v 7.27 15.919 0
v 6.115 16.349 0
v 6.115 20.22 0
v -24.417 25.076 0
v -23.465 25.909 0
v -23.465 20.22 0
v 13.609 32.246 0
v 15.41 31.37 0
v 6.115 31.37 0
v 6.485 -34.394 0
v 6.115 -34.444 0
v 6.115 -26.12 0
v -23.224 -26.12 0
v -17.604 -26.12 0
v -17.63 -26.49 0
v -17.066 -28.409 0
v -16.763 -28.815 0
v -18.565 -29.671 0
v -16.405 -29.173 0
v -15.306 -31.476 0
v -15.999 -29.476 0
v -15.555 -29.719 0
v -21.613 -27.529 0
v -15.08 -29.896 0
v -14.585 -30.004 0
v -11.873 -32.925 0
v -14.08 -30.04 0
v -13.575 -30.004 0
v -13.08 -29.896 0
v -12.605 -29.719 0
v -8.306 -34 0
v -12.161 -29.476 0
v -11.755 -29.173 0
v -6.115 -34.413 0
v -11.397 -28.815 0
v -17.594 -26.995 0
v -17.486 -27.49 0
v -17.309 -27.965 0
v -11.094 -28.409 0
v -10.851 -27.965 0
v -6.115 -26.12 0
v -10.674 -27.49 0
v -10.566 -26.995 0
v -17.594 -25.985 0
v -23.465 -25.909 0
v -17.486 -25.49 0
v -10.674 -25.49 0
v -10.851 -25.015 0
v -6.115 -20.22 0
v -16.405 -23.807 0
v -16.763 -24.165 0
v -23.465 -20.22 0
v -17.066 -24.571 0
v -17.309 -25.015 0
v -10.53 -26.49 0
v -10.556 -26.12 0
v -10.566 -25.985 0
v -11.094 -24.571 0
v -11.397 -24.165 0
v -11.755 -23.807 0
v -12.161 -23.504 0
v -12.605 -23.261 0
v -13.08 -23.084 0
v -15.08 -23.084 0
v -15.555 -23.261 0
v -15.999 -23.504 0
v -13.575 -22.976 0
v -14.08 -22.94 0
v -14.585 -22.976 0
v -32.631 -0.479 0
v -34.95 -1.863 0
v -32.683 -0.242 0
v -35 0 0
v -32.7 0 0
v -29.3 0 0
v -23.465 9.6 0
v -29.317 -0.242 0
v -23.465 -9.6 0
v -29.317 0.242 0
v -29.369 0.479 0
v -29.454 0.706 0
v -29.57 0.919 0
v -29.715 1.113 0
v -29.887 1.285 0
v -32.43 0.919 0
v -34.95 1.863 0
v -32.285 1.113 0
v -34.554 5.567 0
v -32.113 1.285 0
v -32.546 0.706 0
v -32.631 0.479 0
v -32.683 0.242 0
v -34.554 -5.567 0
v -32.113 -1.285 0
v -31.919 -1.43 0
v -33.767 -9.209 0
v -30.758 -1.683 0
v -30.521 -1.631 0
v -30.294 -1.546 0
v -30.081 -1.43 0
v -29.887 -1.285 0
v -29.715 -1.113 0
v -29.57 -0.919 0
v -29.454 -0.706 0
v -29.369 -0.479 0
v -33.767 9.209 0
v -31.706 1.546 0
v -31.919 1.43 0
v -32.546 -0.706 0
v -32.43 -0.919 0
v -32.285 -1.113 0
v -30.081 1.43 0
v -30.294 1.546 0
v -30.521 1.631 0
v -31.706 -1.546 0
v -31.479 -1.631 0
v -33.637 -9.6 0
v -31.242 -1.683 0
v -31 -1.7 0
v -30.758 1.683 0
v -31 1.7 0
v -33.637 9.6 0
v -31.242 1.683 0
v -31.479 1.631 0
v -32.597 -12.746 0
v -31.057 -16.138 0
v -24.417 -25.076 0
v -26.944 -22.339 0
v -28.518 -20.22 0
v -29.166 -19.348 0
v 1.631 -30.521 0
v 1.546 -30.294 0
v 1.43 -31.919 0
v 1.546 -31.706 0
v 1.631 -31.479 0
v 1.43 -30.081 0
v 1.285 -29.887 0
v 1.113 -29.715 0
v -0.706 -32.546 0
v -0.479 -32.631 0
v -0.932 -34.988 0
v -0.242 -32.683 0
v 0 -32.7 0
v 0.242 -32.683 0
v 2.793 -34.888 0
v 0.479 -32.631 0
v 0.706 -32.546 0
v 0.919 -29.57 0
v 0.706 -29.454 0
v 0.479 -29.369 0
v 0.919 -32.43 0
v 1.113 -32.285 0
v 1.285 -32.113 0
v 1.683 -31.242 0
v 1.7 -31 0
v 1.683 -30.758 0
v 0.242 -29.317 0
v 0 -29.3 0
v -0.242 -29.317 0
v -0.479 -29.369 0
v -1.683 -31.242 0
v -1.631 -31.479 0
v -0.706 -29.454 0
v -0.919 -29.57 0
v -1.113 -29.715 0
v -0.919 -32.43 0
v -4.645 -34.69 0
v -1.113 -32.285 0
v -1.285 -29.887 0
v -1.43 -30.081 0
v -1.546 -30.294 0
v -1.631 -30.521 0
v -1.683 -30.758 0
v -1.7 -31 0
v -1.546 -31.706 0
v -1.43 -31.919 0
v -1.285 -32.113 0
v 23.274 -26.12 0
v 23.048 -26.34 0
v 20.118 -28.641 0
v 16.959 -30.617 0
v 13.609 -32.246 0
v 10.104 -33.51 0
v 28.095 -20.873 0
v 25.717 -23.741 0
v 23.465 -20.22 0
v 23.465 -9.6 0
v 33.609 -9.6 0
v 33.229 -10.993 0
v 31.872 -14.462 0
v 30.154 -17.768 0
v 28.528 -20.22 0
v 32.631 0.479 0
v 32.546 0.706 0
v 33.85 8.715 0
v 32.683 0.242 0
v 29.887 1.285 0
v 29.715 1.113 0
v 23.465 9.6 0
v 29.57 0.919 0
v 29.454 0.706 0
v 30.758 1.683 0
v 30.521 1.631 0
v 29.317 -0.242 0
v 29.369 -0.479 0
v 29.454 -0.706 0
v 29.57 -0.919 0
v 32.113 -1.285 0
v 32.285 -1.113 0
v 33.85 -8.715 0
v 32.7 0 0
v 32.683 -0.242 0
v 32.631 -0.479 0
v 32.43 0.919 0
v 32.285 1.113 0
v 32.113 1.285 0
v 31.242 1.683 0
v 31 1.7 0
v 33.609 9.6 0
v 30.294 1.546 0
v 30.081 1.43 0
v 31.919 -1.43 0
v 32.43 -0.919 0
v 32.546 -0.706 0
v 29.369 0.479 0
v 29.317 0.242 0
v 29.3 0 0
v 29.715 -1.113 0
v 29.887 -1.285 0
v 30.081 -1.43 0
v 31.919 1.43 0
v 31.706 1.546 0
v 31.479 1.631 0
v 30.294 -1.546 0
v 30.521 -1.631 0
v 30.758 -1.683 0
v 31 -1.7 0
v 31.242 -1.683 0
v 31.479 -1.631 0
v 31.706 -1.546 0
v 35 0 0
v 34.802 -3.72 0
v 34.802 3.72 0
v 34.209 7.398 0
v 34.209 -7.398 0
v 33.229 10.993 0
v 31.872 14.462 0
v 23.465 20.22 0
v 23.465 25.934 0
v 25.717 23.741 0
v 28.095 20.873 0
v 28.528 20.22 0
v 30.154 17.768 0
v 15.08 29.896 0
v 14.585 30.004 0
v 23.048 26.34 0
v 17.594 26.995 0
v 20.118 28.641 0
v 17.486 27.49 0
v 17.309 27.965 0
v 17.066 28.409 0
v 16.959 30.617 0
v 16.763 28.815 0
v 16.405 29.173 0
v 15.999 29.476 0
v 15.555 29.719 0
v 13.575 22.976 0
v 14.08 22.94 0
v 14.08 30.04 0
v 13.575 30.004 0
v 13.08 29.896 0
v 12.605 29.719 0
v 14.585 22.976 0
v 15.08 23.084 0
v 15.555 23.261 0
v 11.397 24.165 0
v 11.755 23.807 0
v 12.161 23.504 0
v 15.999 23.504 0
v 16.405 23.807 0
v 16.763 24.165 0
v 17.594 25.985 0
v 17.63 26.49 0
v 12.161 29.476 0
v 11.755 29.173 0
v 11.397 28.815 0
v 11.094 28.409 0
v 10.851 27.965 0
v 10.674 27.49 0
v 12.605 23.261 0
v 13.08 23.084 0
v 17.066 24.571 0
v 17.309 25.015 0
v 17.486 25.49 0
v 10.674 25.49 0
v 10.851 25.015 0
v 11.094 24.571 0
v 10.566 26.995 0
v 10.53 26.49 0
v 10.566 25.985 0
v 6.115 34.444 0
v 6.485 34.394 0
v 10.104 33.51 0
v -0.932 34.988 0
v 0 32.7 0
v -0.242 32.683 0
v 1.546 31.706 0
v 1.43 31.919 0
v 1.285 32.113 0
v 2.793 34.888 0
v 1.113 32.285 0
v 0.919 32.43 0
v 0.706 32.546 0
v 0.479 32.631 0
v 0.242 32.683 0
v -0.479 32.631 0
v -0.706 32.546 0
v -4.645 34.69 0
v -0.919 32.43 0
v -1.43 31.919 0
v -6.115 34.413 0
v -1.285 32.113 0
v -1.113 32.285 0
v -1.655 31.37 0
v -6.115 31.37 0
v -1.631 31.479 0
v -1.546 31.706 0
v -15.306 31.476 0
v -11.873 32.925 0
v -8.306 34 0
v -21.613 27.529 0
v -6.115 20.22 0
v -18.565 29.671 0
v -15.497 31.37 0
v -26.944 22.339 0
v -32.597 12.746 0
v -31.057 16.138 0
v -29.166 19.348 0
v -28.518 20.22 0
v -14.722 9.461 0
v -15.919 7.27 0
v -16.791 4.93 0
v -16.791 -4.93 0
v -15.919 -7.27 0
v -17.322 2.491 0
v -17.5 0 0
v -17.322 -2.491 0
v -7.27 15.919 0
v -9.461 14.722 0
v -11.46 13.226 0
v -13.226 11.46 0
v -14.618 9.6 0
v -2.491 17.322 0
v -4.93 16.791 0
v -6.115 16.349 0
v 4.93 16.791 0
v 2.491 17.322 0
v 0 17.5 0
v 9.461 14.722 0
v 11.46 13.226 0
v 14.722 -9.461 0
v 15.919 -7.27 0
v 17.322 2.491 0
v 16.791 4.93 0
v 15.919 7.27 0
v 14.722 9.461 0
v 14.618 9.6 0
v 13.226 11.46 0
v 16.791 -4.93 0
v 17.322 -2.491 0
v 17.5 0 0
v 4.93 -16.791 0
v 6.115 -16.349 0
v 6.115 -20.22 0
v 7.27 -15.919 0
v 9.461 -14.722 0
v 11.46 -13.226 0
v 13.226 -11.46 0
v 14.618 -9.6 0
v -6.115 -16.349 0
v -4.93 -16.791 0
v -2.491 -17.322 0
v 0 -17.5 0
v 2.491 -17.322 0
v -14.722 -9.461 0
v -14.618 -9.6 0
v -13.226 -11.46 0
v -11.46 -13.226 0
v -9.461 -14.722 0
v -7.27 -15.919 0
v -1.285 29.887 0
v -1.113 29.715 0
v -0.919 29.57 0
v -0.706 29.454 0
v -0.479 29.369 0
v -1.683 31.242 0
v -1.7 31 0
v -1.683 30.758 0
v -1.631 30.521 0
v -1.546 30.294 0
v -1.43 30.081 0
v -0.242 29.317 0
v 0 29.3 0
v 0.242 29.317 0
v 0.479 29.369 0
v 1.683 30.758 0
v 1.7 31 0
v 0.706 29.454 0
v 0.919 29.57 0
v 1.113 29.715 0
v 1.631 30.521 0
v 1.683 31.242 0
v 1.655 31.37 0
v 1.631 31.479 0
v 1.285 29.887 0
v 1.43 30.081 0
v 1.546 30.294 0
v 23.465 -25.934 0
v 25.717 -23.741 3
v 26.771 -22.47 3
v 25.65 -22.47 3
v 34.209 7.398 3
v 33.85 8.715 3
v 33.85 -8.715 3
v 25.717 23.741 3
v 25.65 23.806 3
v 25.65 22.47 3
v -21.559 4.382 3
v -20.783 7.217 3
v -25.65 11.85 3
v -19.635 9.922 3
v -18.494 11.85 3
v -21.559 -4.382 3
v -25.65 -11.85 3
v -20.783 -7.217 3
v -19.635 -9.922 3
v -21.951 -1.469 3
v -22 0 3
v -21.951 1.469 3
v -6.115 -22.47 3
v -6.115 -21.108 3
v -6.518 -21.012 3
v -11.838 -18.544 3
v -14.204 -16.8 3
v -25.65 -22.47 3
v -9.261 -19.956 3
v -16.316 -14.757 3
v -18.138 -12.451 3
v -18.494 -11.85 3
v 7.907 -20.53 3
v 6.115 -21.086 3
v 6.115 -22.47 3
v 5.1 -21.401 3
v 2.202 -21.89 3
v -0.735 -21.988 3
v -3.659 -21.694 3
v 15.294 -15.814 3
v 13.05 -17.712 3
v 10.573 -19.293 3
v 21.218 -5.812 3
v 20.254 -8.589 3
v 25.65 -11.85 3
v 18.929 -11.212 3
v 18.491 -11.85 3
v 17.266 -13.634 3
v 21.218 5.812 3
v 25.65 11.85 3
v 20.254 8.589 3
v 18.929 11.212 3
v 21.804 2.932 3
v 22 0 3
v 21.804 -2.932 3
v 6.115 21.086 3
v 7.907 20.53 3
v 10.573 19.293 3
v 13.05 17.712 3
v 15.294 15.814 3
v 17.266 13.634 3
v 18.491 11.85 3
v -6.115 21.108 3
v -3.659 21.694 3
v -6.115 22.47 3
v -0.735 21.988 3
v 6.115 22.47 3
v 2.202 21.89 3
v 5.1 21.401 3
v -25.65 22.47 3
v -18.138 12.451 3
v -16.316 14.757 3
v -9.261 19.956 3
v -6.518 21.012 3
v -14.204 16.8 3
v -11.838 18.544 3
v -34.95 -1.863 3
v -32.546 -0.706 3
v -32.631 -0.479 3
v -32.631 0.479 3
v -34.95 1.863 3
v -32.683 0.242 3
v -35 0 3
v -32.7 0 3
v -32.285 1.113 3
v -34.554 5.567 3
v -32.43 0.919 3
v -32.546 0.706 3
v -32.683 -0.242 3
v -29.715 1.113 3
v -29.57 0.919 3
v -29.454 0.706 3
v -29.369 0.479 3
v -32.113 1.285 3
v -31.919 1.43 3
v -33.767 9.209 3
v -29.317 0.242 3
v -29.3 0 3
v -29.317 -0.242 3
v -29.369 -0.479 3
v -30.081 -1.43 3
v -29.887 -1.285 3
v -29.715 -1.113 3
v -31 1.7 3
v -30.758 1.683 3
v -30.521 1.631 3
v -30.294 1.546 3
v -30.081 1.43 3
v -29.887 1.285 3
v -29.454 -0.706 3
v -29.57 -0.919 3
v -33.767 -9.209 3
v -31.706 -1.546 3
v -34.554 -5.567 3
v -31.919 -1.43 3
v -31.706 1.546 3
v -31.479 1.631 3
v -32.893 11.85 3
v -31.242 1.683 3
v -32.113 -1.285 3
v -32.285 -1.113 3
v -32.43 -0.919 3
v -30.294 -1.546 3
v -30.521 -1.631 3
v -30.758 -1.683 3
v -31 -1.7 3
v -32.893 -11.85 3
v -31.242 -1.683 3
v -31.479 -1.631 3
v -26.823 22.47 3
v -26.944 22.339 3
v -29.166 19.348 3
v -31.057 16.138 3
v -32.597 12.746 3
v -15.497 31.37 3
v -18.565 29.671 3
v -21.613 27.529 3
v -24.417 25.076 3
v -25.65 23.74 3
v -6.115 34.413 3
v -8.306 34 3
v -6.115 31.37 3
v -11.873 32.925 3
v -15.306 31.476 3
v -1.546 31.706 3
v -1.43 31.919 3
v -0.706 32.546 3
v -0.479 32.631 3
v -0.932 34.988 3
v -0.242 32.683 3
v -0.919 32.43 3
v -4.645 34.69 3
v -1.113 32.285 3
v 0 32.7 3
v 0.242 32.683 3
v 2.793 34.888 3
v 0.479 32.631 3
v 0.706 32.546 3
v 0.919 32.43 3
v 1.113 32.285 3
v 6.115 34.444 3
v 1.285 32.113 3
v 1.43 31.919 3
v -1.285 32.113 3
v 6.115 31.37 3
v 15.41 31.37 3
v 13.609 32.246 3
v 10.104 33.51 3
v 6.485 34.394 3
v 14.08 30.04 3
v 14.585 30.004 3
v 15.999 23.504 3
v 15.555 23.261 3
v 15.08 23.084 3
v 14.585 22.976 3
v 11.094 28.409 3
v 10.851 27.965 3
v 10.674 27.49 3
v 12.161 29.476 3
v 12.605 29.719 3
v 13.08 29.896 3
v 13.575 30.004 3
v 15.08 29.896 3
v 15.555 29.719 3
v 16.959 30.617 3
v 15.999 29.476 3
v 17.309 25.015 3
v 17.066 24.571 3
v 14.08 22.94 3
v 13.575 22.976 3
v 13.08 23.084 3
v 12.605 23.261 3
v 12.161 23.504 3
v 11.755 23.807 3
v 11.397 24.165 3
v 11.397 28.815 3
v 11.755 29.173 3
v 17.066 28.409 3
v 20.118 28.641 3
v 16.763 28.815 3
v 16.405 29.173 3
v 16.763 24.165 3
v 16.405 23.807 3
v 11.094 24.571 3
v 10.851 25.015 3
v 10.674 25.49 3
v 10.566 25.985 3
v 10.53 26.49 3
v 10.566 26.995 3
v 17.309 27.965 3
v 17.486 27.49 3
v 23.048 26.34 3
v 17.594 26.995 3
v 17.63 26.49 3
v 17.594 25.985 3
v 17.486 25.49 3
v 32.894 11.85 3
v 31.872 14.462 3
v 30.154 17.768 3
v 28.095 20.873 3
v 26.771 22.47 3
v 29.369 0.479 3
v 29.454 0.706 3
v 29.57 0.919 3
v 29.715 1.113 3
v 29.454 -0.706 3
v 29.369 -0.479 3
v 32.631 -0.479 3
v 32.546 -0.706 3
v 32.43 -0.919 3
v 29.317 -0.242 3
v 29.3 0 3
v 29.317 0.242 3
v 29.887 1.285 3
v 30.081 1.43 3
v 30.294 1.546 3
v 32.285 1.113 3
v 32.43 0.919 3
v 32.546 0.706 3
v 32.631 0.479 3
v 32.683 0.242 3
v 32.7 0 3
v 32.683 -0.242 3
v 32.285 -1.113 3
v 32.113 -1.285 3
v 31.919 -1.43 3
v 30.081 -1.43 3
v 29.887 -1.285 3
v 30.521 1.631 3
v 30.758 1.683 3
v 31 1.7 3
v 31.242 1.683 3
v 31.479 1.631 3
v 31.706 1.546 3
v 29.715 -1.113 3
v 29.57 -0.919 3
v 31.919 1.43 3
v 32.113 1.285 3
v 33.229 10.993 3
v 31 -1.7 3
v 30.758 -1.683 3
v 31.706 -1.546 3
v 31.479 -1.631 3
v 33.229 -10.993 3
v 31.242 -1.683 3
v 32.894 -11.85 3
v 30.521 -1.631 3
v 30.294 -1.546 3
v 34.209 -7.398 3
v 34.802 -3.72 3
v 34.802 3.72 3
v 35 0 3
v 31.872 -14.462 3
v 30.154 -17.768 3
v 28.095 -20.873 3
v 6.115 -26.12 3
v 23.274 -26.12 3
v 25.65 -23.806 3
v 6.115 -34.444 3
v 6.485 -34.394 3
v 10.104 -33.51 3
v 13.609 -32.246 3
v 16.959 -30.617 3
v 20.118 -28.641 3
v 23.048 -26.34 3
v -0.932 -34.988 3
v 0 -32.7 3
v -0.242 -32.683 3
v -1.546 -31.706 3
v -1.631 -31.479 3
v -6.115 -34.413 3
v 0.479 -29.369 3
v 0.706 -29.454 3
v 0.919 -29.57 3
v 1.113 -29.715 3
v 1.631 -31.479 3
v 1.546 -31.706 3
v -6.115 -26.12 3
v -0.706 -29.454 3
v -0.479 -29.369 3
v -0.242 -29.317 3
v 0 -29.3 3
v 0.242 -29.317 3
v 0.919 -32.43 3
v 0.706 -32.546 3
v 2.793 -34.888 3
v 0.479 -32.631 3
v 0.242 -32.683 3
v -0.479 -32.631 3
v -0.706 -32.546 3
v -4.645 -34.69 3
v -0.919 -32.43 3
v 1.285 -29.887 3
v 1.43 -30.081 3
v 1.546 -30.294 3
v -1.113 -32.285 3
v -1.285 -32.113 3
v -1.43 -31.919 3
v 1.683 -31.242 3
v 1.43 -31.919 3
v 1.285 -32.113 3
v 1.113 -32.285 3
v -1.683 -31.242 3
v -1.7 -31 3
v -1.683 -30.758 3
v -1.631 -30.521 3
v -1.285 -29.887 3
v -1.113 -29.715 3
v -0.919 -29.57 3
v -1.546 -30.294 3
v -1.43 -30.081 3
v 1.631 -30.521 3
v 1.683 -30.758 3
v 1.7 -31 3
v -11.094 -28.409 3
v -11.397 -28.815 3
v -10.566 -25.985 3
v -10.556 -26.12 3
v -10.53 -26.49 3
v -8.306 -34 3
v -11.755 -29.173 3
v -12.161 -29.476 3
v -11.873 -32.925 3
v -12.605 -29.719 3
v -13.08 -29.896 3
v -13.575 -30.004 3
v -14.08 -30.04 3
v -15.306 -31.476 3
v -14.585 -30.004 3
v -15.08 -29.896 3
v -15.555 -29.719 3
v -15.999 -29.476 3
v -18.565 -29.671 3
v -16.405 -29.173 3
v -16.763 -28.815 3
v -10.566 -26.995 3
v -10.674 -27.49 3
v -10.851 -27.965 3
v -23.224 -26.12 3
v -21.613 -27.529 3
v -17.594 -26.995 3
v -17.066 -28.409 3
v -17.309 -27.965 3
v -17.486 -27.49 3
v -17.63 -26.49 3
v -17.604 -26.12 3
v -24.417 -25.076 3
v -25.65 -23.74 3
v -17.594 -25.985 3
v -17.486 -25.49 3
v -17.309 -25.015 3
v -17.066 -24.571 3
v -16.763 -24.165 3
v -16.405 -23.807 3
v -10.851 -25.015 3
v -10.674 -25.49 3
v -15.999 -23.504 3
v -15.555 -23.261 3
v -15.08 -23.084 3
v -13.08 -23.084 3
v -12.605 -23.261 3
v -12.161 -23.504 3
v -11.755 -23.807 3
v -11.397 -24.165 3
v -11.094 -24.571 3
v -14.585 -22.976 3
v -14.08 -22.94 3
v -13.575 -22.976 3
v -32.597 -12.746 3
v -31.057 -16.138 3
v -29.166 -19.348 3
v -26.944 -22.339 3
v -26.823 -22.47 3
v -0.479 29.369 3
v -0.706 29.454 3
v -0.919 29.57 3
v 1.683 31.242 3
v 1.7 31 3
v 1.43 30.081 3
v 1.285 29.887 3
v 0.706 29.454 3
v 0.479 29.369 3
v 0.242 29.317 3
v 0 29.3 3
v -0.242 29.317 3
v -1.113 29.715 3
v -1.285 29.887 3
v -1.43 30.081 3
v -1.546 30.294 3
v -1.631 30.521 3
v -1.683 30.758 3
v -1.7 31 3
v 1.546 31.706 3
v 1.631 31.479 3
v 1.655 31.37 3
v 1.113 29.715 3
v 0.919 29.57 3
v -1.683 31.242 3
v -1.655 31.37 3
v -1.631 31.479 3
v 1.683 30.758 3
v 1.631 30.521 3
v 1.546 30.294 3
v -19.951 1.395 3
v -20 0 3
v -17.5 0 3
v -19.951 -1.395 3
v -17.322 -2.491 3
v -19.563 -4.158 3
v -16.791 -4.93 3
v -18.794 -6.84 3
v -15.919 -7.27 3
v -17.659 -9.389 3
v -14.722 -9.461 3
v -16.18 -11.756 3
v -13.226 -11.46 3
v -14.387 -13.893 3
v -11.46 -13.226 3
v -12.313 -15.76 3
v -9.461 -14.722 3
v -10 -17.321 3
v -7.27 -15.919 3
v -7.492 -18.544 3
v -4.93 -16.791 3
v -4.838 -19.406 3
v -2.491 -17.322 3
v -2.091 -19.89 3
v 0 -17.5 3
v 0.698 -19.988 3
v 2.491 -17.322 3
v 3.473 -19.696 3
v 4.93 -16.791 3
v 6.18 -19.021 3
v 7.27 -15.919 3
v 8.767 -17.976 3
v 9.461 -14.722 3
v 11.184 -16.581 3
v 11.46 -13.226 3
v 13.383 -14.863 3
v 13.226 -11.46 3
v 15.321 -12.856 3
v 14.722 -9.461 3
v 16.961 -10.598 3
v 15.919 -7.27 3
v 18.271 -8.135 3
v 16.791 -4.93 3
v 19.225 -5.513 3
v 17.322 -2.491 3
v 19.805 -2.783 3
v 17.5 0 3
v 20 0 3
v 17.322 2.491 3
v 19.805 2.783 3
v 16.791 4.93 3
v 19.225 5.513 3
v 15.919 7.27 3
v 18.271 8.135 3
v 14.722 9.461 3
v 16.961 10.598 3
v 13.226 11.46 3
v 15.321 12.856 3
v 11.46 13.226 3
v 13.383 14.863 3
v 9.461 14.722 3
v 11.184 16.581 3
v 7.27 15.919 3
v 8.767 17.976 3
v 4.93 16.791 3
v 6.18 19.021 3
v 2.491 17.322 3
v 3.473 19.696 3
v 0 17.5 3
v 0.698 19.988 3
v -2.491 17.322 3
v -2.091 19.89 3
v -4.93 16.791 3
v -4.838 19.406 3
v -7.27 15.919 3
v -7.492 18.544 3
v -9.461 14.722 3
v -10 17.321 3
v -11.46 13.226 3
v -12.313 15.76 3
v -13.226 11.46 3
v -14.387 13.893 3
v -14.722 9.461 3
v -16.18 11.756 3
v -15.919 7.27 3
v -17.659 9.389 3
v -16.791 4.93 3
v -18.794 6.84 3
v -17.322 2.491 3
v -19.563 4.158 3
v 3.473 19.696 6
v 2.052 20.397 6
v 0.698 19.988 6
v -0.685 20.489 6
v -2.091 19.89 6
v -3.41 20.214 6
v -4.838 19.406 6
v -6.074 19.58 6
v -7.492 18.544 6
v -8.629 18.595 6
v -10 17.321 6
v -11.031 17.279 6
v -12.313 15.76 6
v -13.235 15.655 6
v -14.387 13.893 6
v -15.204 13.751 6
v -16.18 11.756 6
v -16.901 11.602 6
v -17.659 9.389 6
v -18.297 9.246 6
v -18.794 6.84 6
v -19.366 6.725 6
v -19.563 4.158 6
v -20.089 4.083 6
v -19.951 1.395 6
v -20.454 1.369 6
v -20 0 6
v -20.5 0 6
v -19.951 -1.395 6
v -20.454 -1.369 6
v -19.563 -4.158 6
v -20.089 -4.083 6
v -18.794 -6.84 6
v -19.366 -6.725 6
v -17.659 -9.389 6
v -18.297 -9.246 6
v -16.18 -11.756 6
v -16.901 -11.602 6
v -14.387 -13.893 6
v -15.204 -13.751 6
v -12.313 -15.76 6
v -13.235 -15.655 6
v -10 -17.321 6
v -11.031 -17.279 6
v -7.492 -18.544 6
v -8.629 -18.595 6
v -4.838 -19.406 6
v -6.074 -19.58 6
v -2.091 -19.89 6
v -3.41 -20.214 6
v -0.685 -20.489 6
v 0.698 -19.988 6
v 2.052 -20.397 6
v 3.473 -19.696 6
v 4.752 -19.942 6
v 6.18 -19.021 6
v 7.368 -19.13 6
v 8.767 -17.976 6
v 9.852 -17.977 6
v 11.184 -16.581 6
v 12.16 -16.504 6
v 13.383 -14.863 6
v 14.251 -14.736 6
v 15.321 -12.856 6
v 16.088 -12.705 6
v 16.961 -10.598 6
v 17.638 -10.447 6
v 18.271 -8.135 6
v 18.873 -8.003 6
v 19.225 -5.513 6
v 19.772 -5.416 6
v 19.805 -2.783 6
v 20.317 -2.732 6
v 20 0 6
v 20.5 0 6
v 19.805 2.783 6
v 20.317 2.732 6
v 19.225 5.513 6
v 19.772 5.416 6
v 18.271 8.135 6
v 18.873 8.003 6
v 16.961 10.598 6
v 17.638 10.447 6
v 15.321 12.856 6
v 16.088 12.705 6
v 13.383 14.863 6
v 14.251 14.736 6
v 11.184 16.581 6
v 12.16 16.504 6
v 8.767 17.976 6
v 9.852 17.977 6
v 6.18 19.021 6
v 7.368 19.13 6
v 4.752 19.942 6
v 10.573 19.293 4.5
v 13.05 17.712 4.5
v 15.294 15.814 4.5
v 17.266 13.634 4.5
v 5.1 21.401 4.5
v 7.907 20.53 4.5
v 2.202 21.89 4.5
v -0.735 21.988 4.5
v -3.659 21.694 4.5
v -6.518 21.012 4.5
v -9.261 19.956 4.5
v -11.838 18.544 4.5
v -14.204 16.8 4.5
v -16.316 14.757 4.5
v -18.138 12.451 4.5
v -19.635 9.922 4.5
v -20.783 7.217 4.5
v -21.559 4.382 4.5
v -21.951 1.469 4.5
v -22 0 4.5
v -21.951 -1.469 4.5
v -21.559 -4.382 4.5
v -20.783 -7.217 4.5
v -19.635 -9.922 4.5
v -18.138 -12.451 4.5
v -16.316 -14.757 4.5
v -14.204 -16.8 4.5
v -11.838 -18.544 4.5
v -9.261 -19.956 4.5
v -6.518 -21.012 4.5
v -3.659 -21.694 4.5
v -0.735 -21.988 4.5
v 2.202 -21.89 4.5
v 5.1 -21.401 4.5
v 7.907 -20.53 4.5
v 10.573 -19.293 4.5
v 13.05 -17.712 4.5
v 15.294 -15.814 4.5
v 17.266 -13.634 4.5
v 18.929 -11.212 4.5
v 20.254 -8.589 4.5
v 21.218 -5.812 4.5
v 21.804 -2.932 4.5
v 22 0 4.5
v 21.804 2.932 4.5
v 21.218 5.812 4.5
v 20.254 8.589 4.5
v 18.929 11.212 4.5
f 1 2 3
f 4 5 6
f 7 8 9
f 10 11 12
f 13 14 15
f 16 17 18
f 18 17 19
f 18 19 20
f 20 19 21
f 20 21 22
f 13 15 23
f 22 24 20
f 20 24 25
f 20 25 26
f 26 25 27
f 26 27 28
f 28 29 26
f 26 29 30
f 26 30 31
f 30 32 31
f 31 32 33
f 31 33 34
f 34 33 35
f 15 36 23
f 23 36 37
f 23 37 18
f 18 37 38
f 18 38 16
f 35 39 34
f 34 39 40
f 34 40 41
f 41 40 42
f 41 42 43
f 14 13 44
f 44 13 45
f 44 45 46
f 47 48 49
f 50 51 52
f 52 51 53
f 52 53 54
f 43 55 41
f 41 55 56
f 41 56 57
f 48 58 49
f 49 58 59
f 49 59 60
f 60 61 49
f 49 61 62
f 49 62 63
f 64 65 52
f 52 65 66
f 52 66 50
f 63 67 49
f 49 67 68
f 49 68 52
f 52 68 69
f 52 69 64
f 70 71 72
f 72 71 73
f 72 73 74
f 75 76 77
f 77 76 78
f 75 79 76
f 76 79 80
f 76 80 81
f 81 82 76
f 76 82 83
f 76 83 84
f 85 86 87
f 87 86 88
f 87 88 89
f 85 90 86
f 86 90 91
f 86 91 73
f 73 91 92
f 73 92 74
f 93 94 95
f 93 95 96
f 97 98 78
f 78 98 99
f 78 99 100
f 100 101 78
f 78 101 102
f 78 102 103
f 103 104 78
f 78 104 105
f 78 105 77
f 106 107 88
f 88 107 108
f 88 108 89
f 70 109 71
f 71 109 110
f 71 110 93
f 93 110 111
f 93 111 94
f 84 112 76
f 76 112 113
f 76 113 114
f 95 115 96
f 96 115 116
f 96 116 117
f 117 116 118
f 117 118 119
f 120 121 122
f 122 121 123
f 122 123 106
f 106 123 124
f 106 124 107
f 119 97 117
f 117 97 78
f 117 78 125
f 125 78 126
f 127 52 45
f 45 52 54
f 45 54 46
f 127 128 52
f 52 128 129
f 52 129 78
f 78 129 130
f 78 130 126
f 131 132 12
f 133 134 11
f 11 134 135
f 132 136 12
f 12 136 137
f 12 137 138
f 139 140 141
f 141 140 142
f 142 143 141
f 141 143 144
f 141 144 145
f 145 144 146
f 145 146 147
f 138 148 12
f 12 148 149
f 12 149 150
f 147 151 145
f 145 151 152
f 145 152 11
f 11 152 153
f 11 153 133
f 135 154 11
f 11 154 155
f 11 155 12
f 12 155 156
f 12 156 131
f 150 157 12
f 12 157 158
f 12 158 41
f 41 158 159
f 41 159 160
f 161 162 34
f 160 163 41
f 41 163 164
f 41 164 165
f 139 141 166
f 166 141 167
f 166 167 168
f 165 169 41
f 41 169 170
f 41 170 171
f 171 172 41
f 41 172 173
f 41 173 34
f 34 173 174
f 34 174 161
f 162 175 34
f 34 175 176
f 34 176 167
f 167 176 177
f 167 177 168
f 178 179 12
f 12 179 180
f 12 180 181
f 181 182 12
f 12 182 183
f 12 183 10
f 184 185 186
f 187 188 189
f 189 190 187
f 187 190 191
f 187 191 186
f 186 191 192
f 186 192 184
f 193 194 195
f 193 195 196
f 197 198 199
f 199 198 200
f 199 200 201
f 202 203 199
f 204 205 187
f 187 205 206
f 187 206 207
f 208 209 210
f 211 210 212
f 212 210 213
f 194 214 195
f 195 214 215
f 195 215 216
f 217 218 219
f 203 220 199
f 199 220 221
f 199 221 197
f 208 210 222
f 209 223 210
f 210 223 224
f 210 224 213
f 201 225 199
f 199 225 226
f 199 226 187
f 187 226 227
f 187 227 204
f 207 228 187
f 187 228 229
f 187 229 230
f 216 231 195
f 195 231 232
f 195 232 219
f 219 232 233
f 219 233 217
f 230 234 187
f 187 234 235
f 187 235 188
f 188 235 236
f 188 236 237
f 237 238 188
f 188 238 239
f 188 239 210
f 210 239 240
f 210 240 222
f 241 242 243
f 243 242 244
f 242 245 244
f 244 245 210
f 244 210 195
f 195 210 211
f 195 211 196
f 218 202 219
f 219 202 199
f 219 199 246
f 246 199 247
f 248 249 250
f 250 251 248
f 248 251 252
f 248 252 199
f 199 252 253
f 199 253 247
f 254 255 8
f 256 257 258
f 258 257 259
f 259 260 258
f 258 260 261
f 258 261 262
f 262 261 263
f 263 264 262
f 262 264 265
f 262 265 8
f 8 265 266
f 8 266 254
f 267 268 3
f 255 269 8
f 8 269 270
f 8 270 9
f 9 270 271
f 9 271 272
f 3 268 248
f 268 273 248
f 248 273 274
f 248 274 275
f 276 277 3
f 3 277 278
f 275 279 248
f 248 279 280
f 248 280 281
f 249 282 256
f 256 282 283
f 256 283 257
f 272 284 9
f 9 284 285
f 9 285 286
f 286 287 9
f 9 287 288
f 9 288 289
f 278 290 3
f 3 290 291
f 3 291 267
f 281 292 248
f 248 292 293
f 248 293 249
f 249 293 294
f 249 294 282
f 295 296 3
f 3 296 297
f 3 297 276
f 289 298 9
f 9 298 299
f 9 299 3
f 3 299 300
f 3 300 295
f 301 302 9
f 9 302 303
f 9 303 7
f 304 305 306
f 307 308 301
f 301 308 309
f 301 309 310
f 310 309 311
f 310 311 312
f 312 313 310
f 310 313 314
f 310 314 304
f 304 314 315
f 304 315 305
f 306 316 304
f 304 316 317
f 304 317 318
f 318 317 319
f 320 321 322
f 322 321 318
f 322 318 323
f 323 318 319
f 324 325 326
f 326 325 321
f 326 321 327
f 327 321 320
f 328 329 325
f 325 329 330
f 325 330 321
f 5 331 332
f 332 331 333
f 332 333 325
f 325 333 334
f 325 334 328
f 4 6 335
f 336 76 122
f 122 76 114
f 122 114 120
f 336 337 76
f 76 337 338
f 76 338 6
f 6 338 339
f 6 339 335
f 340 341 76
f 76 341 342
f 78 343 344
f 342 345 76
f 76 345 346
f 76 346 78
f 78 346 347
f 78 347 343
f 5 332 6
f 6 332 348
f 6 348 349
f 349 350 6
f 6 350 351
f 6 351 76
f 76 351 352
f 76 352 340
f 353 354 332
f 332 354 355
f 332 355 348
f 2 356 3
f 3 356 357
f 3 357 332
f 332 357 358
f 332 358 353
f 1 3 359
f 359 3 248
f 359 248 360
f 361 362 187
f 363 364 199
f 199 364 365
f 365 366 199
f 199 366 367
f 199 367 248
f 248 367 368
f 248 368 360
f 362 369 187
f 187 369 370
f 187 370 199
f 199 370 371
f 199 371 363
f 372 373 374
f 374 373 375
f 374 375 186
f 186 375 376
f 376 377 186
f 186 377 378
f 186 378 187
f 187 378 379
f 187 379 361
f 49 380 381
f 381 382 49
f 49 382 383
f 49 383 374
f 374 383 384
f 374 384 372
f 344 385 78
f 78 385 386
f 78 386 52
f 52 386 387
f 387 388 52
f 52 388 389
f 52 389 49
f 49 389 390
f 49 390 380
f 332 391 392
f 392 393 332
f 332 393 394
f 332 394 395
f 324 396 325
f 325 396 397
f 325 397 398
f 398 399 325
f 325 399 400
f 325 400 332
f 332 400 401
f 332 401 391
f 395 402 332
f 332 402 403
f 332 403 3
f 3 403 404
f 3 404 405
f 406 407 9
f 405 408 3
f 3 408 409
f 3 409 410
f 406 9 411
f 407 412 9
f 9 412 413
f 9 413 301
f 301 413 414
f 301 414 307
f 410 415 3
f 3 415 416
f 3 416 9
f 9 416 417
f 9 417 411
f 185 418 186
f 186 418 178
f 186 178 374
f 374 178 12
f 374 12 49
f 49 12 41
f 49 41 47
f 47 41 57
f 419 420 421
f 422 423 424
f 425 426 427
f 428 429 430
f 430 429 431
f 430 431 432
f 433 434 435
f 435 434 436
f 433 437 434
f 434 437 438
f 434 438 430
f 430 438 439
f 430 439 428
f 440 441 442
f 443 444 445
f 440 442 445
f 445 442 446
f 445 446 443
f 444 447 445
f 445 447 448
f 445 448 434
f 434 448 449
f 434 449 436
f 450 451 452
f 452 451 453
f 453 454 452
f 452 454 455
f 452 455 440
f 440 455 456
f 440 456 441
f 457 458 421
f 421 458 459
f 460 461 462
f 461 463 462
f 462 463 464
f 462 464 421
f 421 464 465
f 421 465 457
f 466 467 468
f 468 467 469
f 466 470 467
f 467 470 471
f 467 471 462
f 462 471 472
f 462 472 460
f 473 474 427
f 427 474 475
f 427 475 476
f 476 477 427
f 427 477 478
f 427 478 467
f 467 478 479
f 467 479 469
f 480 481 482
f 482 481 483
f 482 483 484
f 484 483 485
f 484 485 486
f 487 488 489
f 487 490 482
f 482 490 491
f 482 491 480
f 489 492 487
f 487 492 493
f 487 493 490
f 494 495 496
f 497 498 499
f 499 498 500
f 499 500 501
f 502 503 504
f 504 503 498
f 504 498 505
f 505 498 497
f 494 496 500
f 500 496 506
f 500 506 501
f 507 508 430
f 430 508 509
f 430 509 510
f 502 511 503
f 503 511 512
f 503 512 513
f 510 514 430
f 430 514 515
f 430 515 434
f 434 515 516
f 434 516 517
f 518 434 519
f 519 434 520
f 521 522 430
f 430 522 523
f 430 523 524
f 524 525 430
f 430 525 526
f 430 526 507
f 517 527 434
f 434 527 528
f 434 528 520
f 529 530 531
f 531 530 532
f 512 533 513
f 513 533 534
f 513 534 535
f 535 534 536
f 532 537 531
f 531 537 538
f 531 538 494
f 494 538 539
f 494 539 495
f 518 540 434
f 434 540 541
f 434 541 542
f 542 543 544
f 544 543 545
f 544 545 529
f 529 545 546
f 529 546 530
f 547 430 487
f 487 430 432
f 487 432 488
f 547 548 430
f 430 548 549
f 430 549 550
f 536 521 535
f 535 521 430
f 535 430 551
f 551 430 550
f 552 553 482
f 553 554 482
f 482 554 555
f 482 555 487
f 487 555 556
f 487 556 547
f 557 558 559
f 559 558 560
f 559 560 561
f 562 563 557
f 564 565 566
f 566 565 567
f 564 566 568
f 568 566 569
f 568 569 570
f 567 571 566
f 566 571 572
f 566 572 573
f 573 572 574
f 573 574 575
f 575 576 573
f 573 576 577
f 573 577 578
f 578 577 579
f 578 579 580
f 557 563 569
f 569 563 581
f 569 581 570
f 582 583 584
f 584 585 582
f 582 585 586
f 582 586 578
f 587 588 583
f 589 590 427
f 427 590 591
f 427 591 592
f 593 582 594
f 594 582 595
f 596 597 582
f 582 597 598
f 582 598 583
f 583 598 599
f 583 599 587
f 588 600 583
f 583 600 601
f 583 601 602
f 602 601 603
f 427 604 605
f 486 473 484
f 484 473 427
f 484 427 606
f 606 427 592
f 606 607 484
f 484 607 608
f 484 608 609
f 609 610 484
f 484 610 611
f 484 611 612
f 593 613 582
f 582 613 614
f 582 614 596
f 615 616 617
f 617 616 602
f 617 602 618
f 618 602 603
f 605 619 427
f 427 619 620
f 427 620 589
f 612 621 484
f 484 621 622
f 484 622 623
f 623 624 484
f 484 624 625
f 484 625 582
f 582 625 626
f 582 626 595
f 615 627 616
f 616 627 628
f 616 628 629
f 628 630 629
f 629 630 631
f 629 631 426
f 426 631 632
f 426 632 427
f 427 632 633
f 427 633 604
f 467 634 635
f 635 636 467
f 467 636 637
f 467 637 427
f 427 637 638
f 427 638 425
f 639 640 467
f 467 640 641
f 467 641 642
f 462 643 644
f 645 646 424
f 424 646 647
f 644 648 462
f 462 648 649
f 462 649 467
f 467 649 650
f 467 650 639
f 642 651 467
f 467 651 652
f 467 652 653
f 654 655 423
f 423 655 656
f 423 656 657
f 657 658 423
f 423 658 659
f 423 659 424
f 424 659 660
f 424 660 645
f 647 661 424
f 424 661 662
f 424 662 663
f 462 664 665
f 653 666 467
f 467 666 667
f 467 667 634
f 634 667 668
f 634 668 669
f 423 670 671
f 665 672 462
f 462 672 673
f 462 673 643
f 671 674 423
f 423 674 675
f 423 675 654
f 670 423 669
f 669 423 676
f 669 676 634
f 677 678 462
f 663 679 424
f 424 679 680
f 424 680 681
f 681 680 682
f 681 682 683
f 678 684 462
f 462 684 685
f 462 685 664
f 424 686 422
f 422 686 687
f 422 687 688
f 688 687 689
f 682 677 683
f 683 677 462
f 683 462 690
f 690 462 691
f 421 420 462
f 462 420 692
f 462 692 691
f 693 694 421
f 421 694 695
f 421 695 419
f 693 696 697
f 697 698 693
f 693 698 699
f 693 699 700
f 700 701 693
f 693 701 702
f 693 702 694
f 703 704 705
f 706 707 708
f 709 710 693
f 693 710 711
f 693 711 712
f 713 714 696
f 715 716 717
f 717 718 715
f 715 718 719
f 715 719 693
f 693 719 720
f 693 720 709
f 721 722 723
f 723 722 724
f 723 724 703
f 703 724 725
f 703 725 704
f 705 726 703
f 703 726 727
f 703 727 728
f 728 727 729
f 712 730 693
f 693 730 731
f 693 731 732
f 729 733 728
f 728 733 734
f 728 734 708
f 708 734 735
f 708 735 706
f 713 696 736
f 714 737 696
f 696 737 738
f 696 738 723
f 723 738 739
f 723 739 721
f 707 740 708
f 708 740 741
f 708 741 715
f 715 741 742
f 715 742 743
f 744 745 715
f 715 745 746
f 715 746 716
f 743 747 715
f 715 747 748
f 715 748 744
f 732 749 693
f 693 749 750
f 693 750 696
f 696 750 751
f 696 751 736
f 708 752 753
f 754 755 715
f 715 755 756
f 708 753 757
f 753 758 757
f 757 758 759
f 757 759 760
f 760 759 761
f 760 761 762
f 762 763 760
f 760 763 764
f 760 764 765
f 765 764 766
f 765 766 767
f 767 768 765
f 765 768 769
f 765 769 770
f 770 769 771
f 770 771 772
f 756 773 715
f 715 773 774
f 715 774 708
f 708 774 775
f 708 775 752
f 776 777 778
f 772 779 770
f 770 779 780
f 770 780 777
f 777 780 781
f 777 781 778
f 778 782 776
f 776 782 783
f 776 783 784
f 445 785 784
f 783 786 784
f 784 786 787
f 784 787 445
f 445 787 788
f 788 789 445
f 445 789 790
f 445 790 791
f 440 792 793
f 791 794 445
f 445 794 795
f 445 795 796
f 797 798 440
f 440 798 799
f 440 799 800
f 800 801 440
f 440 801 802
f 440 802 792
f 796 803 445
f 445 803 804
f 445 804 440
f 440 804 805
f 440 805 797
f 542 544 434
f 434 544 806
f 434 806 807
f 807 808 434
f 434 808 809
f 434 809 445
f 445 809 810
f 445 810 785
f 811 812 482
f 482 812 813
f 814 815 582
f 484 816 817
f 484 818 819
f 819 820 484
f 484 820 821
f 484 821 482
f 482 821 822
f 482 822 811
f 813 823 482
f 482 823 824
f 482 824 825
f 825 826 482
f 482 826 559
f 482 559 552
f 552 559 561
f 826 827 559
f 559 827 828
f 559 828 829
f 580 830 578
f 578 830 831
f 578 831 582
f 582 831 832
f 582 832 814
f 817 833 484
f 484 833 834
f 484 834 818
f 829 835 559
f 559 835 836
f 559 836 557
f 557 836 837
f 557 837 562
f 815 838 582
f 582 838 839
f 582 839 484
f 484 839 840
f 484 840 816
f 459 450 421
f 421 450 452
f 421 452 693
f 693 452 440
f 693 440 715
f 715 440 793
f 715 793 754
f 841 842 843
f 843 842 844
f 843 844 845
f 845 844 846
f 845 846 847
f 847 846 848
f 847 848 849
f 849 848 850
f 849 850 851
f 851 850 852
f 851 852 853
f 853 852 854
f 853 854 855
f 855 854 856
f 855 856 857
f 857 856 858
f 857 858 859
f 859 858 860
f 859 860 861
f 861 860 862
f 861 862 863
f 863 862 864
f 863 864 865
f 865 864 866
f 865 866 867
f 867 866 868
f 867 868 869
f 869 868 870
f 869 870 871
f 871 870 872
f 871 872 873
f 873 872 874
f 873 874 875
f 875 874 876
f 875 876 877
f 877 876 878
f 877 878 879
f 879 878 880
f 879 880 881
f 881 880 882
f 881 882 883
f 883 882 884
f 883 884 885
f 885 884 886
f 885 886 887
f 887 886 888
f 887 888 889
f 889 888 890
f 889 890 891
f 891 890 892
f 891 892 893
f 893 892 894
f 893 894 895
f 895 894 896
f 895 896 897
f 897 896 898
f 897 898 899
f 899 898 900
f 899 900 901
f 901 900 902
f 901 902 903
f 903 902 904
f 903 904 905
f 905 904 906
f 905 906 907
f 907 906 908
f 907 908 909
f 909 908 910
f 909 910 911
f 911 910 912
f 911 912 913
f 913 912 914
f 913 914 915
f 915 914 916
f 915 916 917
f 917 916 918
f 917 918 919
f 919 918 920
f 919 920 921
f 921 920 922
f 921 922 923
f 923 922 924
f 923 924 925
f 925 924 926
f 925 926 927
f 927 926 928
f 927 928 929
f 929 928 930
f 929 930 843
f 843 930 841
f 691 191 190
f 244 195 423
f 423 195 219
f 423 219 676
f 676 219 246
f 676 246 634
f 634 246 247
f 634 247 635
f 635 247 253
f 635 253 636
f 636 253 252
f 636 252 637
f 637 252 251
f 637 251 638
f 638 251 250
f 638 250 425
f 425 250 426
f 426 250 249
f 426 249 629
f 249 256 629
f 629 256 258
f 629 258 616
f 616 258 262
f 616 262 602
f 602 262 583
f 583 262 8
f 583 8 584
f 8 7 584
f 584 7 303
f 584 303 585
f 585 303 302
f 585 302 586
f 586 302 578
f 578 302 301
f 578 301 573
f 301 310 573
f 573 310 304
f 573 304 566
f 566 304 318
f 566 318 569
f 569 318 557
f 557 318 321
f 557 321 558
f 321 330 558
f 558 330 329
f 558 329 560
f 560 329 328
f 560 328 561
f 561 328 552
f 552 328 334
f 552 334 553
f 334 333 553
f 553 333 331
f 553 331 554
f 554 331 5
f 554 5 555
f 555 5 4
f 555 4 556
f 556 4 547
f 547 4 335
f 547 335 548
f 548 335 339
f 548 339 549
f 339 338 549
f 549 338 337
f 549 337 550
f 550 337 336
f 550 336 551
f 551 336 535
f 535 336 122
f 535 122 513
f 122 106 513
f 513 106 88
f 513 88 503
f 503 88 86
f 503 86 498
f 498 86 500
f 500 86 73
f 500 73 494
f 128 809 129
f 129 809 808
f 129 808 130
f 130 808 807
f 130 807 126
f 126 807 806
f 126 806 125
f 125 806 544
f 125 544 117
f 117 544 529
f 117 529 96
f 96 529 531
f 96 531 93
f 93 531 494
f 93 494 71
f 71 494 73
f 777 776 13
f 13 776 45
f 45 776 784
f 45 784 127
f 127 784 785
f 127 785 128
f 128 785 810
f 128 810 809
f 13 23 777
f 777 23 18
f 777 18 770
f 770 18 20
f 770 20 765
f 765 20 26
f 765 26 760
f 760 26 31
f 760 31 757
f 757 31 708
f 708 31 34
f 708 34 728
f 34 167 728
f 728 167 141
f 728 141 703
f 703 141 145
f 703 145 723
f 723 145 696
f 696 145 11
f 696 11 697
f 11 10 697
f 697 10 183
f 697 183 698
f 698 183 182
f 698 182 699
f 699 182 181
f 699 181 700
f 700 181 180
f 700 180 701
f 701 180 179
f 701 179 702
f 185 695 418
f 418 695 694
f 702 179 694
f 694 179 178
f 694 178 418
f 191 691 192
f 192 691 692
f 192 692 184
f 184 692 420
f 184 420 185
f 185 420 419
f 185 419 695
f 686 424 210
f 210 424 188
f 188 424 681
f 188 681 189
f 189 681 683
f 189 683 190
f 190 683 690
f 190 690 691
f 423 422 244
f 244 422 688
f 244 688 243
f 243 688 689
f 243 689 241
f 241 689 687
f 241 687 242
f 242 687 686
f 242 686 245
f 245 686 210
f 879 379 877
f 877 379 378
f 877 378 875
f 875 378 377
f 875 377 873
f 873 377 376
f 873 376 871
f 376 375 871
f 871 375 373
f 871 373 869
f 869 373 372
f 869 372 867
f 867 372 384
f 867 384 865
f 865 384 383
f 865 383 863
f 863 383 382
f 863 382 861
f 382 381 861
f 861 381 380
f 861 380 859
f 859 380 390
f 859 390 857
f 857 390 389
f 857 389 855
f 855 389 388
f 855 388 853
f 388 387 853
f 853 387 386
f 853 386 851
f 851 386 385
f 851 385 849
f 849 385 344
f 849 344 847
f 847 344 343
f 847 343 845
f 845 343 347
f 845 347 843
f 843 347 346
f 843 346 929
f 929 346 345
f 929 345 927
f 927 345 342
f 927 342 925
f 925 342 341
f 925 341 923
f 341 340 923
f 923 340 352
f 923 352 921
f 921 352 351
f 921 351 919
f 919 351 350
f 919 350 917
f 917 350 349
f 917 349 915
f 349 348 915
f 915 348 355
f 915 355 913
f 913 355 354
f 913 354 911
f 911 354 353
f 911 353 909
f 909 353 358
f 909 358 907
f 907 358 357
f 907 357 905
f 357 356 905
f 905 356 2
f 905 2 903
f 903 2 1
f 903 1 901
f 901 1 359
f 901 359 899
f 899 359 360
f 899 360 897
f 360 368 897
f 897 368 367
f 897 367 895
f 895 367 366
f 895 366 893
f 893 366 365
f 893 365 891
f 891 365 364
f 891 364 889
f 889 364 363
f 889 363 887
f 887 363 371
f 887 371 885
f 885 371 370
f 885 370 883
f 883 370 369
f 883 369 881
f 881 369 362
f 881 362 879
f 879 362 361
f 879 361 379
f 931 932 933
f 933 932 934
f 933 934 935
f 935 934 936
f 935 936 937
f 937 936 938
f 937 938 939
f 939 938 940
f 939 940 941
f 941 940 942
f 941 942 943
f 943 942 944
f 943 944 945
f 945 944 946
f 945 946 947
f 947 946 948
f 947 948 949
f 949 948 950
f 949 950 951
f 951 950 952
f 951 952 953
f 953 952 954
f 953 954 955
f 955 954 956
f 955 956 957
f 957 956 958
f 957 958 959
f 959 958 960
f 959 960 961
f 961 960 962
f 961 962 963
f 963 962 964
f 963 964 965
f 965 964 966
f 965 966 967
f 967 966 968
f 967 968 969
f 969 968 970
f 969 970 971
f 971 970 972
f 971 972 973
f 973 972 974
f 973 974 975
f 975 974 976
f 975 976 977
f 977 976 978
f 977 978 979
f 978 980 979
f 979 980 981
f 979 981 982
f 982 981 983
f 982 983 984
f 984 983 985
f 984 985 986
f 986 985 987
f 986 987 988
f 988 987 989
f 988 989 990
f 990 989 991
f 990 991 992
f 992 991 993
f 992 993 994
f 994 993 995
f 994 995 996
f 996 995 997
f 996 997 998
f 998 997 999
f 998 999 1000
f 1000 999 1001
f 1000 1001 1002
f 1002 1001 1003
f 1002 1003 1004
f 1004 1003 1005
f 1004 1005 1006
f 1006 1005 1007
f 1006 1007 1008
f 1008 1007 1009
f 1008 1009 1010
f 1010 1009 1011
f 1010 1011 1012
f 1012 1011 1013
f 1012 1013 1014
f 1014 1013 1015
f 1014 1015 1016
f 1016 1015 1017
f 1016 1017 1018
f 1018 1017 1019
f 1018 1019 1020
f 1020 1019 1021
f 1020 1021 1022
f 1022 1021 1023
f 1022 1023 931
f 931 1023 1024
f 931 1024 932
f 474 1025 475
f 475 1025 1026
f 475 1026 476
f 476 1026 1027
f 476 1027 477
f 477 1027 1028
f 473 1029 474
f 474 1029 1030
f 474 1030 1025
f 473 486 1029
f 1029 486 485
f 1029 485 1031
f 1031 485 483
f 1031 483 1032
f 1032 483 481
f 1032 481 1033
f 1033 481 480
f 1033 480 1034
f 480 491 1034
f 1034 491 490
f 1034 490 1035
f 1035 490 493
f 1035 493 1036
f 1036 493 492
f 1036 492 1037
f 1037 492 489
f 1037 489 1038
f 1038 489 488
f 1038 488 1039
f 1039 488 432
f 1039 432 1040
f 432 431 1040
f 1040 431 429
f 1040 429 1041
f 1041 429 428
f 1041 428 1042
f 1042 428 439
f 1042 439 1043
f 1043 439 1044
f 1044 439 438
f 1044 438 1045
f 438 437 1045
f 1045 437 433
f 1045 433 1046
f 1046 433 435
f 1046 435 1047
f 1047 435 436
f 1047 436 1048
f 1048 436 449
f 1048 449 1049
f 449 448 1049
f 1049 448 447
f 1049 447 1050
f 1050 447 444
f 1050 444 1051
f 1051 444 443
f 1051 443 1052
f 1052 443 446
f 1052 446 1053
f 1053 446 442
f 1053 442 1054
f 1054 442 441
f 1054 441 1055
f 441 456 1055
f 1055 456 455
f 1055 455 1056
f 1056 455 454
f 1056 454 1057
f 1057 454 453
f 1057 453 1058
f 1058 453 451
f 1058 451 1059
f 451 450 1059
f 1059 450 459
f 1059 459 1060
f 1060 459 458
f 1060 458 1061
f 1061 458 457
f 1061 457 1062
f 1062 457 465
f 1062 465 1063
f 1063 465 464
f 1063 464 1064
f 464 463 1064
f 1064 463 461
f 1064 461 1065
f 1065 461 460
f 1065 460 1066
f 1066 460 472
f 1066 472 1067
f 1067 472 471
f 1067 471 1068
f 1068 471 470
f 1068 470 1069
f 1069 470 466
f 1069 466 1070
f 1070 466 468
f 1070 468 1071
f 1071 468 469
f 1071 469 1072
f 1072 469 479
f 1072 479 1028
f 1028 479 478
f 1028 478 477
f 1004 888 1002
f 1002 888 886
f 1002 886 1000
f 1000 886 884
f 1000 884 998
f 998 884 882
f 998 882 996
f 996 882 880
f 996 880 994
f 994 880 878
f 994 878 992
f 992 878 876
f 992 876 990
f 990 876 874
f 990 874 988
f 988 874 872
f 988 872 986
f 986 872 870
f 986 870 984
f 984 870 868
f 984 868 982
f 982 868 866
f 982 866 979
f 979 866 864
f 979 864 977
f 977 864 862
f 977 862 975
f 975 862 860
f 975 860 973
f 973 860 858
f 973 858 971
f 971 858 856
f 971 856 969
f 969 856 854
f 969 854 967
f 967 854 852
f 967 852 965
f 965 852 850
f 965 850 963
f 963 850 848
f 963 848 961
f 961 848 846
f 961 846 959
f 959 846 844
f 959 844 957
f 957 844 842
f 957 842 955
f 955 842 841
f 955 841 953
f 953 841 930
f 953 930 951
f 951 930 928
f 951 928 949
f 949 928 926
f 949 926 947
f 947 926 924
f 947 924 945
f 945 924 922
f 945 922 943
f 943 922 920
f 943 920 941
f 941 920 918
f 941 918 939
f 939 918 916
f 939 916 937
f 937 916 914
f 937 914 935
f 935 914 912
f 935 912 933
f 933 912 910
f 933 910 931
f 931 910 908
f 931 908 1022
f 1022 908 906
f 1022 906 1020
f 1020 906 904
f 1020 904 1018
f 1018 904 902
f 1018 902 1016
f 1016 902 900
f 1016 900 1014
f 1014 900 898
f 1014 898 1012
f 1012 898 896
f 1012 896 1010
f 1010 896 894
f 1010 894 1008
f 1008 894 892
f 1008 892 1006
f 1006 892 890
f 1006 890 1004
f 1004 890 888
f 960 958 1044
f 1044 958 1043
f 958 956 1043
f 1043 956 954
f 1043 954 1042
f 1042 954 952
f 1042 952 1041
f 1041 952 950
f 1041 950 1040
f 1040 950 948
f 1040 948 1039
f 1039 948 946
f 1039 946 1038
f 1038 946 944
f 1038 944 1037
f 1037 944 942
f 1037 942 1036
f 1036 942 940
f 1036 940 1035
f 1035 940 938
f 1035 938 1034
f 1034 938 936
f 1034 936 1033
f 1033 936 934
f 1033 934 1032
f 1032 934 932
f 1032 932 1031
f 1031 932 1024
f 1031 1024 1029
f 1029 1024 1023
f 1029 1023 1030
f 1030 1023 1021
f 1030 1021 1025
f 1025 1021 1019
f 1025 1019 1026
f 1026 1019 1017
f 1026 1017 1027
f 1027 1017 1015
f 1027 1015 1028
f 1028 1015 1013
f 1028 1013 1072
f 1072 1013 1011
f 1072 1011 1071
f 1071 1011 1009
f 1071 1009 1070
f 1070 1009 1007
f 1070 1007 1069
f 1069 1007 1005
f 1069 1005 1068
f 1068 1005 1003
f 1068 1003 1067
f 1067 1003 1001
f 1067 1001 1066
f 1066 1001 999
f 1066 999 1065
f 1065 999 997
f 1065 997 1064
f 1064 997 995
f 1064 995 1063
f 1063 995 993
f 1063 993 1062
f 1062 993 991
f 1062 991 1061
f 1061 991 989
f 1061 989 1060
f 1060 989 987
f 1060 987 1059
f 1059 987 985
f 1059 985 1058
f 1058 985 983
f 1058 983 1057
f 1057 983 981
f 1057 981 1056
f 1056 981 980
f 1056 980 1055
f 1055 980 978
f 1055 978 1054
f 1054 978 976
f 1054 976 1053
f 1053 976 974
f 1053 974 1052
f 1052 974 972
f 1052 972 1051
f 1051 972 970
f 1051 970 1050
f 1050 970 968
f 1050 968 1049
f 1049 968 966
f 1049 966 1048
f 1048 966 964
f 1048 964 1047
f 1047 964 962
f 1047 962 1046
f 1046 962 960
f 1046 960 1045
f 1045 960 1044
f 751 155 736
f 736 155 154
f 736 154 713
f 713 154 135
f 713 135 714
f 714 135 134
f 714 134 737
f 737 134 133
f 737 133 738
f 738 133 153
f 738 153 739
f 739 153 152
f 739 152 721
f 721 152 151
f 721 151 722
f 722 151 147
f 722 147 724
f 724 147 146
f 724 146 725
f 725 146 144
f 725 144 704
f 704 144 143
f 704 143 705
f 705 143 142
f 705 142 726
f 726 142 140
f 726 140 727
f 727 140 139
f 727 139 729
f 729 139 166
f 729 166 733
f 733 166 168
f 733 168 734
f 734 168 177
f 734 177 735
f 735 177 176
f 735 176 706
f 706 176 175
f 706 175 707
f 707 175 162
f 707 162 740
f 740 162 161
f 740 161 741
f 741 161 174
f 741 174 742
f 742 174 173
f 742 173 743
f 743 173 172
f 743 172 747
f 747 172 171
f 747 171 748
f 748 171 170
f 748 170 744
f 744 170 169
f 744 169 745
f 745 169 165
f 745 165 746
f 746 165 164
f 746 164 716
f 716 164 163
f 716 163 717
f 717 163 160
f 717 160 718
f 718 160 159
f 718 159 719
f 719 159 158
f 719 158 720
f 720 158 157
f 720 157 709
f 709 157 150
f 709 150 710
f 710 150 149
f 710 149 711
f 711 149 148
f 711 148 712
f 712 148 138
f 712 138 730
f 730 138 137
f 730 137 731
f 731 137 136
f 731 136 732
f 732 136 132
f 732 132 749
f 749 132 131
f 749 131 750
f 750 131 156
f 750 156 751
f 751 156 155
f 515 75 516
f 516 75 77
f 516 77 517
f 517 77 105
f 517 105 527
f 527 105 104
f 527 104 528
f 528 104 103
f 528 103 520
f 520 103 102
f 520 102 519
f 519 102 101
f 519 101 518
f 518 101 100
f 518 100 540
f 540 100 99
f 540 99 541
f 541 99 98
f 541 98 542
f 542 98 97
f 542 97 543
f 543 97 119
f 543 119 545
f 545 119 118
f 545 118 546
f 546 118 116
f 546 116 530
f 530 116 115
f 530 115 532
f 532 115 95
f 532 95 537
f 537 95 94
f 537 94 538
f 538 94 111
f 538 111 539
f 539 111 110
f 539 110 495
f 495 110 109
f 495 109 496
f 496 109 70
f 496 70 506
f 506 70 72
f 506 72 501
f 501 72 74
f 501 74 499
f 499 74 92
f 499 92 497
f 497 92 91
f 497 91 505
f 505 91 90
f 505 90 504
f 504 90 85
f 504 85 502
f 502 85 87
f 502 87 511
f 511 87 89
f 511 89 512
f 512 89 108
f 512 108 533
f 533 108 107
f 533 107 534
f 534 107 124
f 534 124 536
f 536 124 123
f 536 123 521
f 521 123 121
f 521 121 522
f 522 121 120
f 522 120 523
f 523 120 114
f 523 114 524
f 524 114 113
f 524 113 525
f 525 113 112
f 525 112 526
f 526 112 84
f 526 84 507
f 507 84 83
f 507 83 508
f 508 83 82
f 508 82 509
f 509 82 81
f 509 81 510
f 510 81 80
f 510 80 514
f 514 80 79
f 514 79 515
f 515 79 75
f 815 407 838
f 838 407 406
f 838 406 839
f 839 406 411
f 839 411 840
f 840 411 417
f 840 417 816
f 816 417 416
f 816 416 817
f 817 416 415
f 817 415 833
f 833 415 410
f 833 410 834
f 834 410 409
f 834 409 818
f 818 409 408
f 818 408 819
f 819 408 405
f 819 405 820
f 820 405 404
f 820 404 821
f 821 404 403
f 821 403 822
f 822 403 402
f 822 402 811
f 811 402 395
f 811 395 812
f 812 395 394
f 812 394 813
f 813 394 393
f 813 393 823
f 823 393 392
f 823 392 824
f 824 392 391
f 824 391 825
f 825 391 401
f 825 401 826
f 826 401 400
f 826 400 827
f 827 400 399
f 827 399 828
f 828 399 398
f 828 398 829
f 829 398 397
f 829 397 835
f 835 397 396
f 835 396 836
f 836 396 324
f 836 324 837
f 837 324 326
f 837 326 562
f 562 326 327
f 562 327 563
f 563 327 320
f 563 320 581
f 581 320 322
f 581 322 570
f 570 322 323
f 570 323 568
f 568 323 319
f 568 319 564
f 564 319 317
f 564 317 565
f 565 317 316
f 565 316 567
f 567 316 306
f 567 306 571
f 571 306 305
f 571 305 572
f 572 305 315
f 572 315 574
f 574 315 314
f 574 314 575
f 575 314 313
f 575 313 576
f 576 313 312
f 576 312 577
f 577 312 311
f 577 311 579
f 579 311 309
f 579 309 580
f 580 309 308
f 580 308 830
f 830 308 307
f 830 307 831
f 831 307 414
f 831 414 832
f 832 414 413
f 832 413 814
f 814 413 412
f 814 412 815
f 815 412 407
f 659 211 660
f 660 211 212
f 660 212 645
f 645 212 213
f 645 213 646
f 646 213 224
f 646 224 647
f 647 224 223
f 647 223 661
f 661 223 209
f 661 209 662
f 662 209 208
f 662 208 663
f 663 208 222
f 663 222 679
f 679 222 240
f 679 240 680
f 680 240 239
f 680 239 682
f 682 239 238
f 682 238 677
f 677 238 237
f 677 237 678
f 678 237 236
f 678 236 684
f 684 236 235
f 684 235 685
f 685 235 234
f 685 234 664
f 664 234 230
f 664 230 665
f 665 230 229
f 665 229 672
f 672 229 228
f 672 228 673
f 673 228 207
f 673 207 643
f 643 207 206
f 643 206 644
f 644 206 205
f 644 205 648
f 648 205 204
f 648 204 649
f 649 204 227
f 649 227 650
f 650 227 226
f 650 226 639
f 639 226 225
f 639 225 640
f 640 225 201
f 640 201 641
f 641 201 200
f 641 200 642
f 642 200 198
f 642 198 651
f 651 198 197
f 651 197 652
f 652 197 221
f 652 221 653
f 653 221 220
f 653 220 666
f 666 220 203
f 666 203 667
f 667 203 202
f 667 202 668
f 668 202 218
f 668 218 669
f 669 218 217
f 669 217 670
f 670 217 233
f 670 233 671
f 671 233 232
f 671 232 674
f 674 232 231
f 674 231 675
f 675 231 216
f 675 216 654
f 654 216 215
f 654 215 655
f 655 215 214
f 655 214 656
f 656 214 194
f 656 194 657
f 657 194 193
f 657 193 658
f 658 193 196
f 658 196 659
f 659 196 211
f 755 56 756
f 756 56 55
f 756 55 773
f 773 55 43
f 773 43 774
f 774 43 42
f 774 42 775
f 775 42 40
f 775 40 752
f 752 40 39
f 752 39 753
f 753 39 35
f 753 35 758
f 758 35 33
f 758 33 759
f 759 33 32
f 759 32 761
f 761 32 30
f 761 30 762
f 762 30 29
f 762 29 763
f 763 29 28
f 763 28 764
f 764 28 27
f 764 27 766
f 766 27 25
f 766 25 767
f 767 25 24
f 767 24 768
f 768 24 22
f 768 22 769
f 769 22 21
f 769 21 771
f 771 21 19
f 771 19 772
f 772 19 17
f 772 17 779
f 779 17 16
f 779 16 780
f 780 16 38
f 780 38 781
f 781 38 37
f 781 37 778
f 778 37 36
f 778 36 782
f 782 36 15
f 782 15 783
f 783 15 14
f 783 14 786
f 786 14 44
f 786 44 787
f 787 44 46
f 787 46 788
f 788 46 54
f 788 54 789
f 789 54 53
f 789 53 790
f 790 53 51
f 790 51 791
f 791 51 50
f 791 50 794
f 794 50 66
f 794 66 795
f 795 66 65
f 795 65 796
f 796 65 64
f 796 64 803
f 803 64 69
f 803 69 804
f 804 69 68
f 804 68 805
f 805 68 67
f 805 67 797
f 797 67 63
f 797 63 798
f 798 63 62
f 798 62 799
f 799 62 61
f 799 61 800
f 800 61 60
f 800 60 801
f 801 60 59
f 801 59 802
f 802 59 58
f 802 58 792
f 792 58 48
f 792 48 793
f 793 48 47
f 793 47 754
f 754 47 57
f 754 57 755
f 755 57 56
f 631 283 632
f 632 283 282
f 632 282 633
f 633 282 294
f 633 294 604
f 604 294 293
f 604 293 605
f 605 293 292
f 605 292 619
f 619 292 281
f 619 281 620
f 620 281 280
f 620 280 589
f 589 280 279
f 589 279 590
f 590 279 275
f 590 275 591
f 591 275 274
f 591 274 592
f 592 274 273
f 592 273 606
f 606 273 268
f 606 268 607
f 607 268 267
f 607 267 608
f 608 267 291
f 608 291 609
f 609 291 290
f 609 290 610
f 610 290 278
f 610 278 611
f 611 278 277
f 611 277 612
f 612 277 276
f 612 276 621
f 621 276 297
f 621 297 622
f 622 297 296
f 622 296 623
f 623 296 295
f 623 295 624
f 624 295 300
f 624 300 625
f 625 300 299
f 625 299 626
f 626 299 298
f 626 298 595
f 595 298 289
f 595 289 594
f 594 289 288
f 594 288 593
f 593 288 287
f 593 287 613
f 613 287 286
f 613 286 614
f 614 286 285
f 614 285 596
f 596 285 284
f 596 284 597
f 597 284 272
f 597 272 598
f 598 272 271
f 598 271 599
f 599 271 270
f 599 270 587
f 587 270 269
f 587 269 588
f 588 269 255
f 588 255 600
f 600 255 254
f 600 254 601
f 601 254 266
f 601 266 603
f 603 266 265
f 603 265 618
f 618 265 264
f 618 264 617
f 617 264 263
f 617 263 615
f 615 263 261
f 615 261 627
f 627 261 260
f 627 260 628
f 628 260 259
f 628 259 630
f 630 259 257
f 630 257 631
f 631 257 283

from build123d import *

# Parameters (mm, degrees)
SKIZZE1_R                        = 35
SKIZZE1_R_2                      = 17.5
AUFSATZ_LINEAR_AUSTRAGEN1_DEPTH  = 3
SKIZZE2_R                        = 22
SKIZZE2_R_2                      = 20
AUFSATZ_LINEAR_AUSTRAGEN2_DEPTH  = 3
FASE1_SIZE                       = 1.5
KREISMUSTER2_COUNT               = 4
F_7_1_7_1_DURCHMESSER_BOHRUNG1_D = 7.1
KREISMUSTER3_COUNT               = 2


with BuildPart() as part:
    # Skizze1 → Aufsatz-Linear austragen1 (new body)
    with BuildSketch(Plane.XY):
        Circle(SKIZZE1_R)
        Circle(SKIZZE1_R_2, mode=Mode.SUBTRACT)
    extrude(amount=AUFSATZ_LINEAR_AUSTRAGEN1_DEPTH)

    # Skizze2 → Aufsatz-Linear austragen2 (add)
    with BuildSketch(Plane.XY.offset(3)):
        Circle(SKIZZE2_R)
        Circle(SKIZZE2_R_2, mode=Mode.SUBTRACT)
    extrude(amount=AUFSATZ_LINEAR_AUSTRAGEN2_DEPTH)

    # Fase1
    fase1_edges = [part.edges().sort_by_distance(p)[0] for p in [
        (-22, 0, 6),
    ]]
    chamfer(fase1_edges, length=FASE1_SIZE)

    # Skizze4 → Ø3.4 (3.4) Durchmesser Bohrung1 (revolve, cut)
    with BuildSketch(Plane(origin=(0, 31, 0), x_dir=(0, 1, 0), z_dir=(1, 0, 0))):
        Polygon((0, 0), (0, 11.021463052), (1.7, 10), (1.7, 0), align=None)
    f_3_4_3_4_durchmesser_bohrung1 = revolve(axis=Axis((0, 31, -6.35), (0, 0, 1)), mode=Mode.SUBTRACT)

    # Kreismuster2: Ø3.4 (3.4) Durchmesser Bohrung1 ×4 about axis
    kreismuster2_axis = Axis((0, 0, 3), (0, 0, -1))
    for i in range(1, KREISMUSTER2_COUNT):
        add(f_3_4_3_4_durchmesser_bohrung1.rotate(kreismuster2_axis, i * 360 / KREISMUSTER2_COUNT), mode=Mode.SUBTRACT)

    # Ø7.1 (7.1) Durchmesser Bohrung1 (through all)
    with Locations(Plane(origin=(0, 0, 0), x_dir=(-1, 0, 0), z_dir=(0, 0, -1))):
        with Locations((-14.08, 26.49)):
            f_7_1_7_1_durchmesser_bohrung1 = Hole(F_7_1_7_1_DURCHMESSER_BOHRUNG1_D / 2)

    # Kreismuster3: Ø7.1 (7.1) Durchmesser Bohrung1 ×2 about axis
    kreismuster3_axis = Axis((0, 0, 0), (0, 0, 1))
    for i in range(1, KREISMUSTER3_COUNT):
        add(f_7_1_7_1_durchmesser_bohrung1.rotate(kreismuster3_axis, i * 360 / KREISMUSTER3_COUNT), mode=Mode.SUBTRACT)


solid = part.part
